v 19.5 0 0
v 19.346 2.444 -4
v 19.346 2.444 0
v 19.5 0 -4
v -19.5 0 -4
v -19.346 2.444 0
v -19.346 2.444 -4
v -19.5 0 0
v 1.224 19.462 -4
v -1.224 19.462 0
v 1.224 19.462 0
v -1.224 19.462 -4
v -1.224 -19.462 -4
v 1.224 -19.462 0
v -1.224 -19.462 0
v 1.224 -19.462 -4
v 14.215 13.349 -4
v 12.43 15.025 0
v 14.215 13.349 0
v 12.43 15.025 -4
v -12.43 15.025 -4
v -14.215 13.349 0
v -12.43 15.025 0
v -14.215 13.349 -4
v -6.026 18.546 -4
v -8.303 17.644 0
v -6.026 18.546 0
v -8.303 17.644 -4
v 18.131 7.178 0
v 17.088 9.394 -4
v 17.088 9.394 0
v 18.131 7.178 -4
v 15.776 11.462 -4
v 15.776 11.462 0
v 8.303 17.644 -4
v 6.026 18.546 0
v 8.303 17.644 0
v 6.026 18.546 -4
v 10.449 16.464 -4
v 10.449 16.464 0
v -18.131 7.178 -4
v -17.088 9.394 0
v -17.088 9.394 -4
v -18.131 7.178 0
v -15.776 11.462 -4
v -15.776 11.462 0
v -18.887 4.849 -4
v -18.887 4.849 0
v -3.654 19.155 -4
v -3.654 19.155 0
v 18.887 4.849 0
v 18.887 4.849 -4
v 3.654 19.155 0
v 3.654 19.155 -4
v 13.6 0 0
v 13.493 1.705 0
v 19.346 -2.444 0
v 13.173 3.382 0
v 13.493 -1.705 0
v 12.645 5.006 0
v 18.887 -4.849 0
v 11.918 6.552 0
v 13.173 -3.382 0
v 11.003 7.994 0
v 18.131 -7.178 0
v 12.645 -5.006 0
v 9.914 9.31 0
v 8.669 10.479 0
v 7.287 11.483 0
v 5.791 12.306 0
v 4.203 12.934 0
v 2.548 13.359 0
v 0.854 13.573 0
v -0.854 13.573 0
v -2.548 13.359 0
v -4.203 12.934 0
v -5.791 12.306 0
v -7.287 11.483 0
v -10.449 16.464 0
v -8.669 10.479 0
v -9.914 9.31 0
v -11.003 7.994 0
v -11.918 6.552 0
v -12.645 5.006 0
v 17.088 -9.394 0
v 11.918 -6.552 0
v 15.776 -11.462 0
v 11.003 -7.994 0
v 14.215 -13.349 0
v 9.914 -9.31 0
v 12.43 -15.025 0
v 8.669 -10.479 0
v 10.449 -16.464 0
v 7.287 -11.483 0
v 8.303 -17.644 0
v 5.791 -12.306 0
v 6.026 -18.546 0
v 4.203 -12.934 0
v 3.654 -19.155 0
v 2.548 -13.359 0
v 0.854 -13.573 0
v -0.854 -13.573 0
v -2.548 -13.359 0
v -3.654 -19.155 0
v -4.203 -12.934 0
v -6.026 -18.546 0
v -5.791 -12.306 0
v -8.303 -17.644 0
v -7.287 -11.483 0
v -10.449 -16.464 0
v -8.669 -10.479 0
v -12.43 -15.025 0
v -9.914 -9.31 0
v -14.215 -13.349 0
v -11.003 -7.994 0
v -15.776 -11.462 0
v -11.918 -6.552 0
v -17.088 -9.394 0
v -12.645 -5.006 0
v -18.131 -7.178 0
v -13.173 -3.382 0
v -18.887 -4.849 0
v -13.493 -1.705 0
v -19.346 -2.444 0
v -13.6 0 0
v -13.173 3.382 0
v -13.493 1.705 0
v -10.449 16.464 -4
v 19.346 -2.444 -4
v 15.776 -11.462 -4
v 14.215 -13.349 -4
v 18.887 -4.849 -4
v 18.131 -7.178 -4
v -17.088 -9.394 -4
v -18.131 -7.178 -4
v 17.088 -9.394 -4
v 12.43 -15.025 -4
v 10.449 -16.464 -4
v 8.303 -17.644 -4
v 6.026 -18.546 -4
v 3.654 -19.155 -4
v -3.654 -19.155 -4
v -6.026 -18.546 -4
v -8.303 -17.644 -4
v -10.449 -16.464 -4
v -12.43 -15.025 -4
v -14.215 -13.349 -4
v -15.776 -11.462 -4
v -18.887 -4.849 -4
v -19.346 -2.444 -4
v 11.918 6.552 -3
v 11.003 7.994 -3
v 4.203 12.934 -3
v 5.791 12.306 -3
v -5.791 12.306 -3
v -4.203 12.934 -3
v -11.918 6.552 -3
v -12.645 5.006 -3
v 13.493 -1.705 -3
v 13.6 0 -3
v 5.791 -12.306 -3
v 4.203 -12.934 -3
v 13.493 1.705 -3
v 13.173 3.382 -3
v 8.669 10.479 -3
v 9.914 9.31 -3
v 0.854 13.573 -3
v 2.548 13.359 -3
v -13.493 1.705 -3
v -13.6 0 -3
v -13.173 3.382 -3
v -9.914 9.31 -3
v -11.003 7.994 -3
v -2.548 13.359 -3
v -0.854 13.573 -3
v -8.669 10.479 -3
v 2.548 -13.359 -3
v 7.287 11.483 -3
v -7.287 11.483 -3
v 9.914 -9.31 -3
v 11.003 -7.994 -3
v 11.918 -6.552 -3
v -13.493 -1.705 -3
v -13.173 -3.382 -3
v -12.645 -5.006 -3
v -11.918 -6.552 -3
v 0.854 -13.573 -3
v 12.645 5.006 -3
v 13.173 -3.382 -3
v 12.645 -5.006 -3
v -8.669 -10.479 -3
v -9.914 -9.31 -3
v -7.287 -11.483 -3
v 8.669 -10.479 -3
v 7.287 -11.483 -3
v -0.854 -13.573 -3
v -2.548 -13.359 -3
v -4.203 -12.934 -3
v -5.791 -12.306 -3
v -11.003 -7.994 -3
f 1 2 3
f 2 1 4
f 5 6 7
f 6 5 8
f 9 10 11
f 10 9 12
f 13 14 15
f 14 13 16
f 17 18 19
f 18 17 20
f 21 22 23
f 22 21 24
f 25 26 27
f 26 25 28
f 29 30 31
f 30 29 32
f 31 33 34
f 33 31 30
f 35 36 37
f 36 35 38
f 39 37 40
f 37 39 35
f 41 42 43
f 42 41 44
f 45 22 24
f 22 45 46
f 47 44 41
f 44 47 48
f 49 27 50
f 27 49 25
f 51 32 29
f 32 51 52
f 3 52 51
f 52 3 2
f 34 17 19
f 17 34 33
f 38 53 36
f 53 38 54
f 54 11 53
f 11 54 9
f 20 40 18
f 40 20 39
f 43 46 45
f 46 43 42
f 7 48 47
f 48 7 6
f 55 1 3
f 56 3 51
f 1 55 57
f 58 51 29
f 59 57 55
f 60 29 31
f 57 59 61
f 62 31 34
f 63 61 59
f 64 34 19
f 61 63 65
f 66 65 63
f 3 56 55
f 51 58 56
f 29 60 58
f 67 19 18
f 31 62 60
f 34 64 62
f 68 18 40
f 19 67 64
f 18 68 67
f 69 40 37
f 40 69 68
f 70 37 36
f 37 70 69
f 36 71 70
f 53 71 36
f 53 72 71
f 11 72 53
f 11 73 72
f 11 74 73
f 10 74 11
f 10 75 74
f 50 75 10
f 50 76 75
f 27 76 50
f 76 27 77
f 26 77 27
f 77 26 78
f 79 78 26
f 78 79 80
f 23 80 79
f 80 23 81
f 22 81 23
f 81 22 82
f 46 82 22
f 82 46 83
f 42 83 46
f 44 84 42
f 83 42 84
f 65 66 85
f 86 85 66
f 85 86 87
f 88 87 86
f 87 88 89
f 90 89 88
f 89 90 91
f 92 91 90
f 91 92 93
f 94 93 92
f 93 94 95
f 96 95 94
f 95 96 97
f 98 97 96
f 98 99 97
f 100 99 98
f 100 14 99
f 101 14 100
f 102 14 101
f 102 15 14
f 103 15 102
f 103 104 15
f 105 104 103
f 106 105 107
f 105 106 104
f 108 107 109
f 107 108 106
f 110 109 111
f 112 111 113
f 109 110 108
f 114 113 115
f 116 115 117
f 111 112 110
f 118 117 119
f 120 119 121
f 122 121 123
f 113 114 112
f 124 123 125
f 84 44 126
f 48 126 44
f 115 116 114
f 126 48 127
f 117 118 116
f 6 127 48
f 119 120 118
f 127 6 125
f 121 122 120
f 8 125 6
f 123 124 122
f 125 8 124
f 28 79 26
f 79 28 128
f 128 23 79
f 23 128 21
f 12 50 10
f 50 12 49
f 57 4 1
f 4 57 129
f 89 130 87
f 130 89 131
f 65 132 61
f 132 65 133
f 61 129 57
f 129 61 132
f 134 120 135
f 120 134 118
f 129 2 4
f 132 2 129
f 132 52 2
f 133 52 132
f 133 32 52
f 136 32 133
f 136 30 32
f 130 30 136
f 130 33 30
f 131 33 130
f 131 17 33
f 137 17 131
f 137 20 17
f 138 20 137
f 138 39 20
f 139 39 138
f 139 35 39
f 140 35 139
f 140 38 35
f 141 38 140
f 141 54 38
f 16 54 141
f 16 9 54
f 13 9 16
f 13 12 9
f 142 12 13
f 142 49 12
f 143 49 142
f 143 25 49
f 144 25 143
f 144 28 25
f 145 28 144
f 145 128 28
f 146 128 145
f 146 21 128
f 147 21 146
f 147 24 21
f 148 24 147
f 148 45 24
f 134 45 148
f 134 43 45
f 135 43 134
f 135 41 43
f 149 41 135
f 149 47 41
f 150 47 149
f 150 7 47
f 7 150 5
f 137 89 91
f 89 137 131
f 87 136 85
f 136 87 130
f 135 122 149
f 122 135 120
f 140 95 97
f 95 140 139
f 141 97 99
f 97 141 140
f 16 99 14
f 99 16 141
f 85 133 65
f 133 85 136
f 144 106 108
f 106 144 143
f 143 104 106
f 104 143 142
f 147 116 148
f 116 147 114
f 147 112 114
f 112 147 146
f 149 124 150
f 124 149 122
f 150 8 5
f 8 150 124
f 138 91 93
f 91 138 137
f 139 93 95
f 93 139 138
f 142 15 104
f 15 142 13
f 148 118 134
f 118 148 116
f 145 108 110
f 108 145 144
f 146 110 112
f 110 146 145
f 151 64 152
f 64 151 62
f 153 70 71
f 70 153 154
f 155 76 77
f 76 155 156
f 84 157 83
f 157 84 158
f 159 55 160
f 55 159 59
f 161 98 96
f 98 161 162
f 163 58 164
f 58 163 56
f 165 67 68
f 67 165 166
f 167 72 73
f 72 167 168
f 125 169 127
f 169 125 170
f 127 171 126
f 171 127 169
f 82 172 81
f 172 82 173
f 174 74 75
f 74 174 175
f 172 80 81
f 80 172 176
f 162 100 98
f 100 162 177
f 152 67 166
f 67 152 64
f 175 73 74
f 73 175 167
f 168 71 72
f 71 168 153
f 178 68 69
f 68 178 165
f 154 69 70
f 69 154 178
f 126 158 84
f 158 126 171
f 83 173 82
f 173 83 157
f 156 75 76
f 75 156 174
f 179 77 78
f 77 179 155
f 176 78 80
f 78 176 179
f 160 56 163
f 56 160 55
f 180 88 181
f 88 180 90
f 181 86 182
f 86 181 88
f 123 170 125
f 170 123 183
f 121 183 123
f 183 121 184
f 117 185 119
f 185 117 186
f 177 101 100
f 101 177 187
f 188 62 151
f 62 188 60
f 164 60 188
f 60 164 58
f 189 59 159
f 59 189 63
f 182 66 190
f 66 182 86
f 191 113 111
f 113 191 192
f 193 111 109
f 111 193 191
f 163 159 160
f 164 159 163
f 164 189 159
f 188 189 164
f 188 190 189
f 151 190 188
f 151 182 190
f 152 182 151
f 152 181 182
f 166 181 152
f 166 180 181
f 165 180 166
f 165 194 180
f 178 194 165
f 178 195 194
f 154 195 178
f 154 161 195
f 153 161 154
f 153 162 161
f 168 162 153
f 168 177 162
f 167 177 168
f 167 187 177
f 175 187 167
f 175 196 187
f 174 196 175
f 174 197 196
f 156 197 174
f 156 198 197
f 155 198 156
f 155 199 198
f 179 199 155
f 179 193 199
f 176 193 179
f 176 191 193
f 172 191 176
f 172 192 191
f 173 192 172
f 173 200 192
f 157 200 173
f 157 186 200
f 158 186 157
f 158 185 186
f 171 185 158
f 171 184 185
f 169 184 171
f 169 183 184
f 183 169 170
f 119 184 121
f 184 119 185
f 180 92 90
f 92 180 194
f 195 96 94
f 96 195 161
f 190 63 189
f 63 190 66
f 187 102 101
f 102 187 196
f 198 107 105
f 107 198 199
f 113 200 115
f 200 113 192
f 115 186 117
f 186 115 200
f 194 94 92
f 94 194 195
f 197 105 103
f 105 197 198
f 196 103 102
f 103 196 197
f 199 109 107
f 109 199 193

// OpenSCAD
$fn = 50;


difference() {
	union() {
		translate(v = [0, 0, -4.0000000000]) {
			cylinder(h = 4, r = 19.5000000000);
		}
	}
	union() {
		#translate(v = [0, 0, -3.0000000000]) {
			cylinder(h = 3, r = 13.6000000000);
		}
	}
}
